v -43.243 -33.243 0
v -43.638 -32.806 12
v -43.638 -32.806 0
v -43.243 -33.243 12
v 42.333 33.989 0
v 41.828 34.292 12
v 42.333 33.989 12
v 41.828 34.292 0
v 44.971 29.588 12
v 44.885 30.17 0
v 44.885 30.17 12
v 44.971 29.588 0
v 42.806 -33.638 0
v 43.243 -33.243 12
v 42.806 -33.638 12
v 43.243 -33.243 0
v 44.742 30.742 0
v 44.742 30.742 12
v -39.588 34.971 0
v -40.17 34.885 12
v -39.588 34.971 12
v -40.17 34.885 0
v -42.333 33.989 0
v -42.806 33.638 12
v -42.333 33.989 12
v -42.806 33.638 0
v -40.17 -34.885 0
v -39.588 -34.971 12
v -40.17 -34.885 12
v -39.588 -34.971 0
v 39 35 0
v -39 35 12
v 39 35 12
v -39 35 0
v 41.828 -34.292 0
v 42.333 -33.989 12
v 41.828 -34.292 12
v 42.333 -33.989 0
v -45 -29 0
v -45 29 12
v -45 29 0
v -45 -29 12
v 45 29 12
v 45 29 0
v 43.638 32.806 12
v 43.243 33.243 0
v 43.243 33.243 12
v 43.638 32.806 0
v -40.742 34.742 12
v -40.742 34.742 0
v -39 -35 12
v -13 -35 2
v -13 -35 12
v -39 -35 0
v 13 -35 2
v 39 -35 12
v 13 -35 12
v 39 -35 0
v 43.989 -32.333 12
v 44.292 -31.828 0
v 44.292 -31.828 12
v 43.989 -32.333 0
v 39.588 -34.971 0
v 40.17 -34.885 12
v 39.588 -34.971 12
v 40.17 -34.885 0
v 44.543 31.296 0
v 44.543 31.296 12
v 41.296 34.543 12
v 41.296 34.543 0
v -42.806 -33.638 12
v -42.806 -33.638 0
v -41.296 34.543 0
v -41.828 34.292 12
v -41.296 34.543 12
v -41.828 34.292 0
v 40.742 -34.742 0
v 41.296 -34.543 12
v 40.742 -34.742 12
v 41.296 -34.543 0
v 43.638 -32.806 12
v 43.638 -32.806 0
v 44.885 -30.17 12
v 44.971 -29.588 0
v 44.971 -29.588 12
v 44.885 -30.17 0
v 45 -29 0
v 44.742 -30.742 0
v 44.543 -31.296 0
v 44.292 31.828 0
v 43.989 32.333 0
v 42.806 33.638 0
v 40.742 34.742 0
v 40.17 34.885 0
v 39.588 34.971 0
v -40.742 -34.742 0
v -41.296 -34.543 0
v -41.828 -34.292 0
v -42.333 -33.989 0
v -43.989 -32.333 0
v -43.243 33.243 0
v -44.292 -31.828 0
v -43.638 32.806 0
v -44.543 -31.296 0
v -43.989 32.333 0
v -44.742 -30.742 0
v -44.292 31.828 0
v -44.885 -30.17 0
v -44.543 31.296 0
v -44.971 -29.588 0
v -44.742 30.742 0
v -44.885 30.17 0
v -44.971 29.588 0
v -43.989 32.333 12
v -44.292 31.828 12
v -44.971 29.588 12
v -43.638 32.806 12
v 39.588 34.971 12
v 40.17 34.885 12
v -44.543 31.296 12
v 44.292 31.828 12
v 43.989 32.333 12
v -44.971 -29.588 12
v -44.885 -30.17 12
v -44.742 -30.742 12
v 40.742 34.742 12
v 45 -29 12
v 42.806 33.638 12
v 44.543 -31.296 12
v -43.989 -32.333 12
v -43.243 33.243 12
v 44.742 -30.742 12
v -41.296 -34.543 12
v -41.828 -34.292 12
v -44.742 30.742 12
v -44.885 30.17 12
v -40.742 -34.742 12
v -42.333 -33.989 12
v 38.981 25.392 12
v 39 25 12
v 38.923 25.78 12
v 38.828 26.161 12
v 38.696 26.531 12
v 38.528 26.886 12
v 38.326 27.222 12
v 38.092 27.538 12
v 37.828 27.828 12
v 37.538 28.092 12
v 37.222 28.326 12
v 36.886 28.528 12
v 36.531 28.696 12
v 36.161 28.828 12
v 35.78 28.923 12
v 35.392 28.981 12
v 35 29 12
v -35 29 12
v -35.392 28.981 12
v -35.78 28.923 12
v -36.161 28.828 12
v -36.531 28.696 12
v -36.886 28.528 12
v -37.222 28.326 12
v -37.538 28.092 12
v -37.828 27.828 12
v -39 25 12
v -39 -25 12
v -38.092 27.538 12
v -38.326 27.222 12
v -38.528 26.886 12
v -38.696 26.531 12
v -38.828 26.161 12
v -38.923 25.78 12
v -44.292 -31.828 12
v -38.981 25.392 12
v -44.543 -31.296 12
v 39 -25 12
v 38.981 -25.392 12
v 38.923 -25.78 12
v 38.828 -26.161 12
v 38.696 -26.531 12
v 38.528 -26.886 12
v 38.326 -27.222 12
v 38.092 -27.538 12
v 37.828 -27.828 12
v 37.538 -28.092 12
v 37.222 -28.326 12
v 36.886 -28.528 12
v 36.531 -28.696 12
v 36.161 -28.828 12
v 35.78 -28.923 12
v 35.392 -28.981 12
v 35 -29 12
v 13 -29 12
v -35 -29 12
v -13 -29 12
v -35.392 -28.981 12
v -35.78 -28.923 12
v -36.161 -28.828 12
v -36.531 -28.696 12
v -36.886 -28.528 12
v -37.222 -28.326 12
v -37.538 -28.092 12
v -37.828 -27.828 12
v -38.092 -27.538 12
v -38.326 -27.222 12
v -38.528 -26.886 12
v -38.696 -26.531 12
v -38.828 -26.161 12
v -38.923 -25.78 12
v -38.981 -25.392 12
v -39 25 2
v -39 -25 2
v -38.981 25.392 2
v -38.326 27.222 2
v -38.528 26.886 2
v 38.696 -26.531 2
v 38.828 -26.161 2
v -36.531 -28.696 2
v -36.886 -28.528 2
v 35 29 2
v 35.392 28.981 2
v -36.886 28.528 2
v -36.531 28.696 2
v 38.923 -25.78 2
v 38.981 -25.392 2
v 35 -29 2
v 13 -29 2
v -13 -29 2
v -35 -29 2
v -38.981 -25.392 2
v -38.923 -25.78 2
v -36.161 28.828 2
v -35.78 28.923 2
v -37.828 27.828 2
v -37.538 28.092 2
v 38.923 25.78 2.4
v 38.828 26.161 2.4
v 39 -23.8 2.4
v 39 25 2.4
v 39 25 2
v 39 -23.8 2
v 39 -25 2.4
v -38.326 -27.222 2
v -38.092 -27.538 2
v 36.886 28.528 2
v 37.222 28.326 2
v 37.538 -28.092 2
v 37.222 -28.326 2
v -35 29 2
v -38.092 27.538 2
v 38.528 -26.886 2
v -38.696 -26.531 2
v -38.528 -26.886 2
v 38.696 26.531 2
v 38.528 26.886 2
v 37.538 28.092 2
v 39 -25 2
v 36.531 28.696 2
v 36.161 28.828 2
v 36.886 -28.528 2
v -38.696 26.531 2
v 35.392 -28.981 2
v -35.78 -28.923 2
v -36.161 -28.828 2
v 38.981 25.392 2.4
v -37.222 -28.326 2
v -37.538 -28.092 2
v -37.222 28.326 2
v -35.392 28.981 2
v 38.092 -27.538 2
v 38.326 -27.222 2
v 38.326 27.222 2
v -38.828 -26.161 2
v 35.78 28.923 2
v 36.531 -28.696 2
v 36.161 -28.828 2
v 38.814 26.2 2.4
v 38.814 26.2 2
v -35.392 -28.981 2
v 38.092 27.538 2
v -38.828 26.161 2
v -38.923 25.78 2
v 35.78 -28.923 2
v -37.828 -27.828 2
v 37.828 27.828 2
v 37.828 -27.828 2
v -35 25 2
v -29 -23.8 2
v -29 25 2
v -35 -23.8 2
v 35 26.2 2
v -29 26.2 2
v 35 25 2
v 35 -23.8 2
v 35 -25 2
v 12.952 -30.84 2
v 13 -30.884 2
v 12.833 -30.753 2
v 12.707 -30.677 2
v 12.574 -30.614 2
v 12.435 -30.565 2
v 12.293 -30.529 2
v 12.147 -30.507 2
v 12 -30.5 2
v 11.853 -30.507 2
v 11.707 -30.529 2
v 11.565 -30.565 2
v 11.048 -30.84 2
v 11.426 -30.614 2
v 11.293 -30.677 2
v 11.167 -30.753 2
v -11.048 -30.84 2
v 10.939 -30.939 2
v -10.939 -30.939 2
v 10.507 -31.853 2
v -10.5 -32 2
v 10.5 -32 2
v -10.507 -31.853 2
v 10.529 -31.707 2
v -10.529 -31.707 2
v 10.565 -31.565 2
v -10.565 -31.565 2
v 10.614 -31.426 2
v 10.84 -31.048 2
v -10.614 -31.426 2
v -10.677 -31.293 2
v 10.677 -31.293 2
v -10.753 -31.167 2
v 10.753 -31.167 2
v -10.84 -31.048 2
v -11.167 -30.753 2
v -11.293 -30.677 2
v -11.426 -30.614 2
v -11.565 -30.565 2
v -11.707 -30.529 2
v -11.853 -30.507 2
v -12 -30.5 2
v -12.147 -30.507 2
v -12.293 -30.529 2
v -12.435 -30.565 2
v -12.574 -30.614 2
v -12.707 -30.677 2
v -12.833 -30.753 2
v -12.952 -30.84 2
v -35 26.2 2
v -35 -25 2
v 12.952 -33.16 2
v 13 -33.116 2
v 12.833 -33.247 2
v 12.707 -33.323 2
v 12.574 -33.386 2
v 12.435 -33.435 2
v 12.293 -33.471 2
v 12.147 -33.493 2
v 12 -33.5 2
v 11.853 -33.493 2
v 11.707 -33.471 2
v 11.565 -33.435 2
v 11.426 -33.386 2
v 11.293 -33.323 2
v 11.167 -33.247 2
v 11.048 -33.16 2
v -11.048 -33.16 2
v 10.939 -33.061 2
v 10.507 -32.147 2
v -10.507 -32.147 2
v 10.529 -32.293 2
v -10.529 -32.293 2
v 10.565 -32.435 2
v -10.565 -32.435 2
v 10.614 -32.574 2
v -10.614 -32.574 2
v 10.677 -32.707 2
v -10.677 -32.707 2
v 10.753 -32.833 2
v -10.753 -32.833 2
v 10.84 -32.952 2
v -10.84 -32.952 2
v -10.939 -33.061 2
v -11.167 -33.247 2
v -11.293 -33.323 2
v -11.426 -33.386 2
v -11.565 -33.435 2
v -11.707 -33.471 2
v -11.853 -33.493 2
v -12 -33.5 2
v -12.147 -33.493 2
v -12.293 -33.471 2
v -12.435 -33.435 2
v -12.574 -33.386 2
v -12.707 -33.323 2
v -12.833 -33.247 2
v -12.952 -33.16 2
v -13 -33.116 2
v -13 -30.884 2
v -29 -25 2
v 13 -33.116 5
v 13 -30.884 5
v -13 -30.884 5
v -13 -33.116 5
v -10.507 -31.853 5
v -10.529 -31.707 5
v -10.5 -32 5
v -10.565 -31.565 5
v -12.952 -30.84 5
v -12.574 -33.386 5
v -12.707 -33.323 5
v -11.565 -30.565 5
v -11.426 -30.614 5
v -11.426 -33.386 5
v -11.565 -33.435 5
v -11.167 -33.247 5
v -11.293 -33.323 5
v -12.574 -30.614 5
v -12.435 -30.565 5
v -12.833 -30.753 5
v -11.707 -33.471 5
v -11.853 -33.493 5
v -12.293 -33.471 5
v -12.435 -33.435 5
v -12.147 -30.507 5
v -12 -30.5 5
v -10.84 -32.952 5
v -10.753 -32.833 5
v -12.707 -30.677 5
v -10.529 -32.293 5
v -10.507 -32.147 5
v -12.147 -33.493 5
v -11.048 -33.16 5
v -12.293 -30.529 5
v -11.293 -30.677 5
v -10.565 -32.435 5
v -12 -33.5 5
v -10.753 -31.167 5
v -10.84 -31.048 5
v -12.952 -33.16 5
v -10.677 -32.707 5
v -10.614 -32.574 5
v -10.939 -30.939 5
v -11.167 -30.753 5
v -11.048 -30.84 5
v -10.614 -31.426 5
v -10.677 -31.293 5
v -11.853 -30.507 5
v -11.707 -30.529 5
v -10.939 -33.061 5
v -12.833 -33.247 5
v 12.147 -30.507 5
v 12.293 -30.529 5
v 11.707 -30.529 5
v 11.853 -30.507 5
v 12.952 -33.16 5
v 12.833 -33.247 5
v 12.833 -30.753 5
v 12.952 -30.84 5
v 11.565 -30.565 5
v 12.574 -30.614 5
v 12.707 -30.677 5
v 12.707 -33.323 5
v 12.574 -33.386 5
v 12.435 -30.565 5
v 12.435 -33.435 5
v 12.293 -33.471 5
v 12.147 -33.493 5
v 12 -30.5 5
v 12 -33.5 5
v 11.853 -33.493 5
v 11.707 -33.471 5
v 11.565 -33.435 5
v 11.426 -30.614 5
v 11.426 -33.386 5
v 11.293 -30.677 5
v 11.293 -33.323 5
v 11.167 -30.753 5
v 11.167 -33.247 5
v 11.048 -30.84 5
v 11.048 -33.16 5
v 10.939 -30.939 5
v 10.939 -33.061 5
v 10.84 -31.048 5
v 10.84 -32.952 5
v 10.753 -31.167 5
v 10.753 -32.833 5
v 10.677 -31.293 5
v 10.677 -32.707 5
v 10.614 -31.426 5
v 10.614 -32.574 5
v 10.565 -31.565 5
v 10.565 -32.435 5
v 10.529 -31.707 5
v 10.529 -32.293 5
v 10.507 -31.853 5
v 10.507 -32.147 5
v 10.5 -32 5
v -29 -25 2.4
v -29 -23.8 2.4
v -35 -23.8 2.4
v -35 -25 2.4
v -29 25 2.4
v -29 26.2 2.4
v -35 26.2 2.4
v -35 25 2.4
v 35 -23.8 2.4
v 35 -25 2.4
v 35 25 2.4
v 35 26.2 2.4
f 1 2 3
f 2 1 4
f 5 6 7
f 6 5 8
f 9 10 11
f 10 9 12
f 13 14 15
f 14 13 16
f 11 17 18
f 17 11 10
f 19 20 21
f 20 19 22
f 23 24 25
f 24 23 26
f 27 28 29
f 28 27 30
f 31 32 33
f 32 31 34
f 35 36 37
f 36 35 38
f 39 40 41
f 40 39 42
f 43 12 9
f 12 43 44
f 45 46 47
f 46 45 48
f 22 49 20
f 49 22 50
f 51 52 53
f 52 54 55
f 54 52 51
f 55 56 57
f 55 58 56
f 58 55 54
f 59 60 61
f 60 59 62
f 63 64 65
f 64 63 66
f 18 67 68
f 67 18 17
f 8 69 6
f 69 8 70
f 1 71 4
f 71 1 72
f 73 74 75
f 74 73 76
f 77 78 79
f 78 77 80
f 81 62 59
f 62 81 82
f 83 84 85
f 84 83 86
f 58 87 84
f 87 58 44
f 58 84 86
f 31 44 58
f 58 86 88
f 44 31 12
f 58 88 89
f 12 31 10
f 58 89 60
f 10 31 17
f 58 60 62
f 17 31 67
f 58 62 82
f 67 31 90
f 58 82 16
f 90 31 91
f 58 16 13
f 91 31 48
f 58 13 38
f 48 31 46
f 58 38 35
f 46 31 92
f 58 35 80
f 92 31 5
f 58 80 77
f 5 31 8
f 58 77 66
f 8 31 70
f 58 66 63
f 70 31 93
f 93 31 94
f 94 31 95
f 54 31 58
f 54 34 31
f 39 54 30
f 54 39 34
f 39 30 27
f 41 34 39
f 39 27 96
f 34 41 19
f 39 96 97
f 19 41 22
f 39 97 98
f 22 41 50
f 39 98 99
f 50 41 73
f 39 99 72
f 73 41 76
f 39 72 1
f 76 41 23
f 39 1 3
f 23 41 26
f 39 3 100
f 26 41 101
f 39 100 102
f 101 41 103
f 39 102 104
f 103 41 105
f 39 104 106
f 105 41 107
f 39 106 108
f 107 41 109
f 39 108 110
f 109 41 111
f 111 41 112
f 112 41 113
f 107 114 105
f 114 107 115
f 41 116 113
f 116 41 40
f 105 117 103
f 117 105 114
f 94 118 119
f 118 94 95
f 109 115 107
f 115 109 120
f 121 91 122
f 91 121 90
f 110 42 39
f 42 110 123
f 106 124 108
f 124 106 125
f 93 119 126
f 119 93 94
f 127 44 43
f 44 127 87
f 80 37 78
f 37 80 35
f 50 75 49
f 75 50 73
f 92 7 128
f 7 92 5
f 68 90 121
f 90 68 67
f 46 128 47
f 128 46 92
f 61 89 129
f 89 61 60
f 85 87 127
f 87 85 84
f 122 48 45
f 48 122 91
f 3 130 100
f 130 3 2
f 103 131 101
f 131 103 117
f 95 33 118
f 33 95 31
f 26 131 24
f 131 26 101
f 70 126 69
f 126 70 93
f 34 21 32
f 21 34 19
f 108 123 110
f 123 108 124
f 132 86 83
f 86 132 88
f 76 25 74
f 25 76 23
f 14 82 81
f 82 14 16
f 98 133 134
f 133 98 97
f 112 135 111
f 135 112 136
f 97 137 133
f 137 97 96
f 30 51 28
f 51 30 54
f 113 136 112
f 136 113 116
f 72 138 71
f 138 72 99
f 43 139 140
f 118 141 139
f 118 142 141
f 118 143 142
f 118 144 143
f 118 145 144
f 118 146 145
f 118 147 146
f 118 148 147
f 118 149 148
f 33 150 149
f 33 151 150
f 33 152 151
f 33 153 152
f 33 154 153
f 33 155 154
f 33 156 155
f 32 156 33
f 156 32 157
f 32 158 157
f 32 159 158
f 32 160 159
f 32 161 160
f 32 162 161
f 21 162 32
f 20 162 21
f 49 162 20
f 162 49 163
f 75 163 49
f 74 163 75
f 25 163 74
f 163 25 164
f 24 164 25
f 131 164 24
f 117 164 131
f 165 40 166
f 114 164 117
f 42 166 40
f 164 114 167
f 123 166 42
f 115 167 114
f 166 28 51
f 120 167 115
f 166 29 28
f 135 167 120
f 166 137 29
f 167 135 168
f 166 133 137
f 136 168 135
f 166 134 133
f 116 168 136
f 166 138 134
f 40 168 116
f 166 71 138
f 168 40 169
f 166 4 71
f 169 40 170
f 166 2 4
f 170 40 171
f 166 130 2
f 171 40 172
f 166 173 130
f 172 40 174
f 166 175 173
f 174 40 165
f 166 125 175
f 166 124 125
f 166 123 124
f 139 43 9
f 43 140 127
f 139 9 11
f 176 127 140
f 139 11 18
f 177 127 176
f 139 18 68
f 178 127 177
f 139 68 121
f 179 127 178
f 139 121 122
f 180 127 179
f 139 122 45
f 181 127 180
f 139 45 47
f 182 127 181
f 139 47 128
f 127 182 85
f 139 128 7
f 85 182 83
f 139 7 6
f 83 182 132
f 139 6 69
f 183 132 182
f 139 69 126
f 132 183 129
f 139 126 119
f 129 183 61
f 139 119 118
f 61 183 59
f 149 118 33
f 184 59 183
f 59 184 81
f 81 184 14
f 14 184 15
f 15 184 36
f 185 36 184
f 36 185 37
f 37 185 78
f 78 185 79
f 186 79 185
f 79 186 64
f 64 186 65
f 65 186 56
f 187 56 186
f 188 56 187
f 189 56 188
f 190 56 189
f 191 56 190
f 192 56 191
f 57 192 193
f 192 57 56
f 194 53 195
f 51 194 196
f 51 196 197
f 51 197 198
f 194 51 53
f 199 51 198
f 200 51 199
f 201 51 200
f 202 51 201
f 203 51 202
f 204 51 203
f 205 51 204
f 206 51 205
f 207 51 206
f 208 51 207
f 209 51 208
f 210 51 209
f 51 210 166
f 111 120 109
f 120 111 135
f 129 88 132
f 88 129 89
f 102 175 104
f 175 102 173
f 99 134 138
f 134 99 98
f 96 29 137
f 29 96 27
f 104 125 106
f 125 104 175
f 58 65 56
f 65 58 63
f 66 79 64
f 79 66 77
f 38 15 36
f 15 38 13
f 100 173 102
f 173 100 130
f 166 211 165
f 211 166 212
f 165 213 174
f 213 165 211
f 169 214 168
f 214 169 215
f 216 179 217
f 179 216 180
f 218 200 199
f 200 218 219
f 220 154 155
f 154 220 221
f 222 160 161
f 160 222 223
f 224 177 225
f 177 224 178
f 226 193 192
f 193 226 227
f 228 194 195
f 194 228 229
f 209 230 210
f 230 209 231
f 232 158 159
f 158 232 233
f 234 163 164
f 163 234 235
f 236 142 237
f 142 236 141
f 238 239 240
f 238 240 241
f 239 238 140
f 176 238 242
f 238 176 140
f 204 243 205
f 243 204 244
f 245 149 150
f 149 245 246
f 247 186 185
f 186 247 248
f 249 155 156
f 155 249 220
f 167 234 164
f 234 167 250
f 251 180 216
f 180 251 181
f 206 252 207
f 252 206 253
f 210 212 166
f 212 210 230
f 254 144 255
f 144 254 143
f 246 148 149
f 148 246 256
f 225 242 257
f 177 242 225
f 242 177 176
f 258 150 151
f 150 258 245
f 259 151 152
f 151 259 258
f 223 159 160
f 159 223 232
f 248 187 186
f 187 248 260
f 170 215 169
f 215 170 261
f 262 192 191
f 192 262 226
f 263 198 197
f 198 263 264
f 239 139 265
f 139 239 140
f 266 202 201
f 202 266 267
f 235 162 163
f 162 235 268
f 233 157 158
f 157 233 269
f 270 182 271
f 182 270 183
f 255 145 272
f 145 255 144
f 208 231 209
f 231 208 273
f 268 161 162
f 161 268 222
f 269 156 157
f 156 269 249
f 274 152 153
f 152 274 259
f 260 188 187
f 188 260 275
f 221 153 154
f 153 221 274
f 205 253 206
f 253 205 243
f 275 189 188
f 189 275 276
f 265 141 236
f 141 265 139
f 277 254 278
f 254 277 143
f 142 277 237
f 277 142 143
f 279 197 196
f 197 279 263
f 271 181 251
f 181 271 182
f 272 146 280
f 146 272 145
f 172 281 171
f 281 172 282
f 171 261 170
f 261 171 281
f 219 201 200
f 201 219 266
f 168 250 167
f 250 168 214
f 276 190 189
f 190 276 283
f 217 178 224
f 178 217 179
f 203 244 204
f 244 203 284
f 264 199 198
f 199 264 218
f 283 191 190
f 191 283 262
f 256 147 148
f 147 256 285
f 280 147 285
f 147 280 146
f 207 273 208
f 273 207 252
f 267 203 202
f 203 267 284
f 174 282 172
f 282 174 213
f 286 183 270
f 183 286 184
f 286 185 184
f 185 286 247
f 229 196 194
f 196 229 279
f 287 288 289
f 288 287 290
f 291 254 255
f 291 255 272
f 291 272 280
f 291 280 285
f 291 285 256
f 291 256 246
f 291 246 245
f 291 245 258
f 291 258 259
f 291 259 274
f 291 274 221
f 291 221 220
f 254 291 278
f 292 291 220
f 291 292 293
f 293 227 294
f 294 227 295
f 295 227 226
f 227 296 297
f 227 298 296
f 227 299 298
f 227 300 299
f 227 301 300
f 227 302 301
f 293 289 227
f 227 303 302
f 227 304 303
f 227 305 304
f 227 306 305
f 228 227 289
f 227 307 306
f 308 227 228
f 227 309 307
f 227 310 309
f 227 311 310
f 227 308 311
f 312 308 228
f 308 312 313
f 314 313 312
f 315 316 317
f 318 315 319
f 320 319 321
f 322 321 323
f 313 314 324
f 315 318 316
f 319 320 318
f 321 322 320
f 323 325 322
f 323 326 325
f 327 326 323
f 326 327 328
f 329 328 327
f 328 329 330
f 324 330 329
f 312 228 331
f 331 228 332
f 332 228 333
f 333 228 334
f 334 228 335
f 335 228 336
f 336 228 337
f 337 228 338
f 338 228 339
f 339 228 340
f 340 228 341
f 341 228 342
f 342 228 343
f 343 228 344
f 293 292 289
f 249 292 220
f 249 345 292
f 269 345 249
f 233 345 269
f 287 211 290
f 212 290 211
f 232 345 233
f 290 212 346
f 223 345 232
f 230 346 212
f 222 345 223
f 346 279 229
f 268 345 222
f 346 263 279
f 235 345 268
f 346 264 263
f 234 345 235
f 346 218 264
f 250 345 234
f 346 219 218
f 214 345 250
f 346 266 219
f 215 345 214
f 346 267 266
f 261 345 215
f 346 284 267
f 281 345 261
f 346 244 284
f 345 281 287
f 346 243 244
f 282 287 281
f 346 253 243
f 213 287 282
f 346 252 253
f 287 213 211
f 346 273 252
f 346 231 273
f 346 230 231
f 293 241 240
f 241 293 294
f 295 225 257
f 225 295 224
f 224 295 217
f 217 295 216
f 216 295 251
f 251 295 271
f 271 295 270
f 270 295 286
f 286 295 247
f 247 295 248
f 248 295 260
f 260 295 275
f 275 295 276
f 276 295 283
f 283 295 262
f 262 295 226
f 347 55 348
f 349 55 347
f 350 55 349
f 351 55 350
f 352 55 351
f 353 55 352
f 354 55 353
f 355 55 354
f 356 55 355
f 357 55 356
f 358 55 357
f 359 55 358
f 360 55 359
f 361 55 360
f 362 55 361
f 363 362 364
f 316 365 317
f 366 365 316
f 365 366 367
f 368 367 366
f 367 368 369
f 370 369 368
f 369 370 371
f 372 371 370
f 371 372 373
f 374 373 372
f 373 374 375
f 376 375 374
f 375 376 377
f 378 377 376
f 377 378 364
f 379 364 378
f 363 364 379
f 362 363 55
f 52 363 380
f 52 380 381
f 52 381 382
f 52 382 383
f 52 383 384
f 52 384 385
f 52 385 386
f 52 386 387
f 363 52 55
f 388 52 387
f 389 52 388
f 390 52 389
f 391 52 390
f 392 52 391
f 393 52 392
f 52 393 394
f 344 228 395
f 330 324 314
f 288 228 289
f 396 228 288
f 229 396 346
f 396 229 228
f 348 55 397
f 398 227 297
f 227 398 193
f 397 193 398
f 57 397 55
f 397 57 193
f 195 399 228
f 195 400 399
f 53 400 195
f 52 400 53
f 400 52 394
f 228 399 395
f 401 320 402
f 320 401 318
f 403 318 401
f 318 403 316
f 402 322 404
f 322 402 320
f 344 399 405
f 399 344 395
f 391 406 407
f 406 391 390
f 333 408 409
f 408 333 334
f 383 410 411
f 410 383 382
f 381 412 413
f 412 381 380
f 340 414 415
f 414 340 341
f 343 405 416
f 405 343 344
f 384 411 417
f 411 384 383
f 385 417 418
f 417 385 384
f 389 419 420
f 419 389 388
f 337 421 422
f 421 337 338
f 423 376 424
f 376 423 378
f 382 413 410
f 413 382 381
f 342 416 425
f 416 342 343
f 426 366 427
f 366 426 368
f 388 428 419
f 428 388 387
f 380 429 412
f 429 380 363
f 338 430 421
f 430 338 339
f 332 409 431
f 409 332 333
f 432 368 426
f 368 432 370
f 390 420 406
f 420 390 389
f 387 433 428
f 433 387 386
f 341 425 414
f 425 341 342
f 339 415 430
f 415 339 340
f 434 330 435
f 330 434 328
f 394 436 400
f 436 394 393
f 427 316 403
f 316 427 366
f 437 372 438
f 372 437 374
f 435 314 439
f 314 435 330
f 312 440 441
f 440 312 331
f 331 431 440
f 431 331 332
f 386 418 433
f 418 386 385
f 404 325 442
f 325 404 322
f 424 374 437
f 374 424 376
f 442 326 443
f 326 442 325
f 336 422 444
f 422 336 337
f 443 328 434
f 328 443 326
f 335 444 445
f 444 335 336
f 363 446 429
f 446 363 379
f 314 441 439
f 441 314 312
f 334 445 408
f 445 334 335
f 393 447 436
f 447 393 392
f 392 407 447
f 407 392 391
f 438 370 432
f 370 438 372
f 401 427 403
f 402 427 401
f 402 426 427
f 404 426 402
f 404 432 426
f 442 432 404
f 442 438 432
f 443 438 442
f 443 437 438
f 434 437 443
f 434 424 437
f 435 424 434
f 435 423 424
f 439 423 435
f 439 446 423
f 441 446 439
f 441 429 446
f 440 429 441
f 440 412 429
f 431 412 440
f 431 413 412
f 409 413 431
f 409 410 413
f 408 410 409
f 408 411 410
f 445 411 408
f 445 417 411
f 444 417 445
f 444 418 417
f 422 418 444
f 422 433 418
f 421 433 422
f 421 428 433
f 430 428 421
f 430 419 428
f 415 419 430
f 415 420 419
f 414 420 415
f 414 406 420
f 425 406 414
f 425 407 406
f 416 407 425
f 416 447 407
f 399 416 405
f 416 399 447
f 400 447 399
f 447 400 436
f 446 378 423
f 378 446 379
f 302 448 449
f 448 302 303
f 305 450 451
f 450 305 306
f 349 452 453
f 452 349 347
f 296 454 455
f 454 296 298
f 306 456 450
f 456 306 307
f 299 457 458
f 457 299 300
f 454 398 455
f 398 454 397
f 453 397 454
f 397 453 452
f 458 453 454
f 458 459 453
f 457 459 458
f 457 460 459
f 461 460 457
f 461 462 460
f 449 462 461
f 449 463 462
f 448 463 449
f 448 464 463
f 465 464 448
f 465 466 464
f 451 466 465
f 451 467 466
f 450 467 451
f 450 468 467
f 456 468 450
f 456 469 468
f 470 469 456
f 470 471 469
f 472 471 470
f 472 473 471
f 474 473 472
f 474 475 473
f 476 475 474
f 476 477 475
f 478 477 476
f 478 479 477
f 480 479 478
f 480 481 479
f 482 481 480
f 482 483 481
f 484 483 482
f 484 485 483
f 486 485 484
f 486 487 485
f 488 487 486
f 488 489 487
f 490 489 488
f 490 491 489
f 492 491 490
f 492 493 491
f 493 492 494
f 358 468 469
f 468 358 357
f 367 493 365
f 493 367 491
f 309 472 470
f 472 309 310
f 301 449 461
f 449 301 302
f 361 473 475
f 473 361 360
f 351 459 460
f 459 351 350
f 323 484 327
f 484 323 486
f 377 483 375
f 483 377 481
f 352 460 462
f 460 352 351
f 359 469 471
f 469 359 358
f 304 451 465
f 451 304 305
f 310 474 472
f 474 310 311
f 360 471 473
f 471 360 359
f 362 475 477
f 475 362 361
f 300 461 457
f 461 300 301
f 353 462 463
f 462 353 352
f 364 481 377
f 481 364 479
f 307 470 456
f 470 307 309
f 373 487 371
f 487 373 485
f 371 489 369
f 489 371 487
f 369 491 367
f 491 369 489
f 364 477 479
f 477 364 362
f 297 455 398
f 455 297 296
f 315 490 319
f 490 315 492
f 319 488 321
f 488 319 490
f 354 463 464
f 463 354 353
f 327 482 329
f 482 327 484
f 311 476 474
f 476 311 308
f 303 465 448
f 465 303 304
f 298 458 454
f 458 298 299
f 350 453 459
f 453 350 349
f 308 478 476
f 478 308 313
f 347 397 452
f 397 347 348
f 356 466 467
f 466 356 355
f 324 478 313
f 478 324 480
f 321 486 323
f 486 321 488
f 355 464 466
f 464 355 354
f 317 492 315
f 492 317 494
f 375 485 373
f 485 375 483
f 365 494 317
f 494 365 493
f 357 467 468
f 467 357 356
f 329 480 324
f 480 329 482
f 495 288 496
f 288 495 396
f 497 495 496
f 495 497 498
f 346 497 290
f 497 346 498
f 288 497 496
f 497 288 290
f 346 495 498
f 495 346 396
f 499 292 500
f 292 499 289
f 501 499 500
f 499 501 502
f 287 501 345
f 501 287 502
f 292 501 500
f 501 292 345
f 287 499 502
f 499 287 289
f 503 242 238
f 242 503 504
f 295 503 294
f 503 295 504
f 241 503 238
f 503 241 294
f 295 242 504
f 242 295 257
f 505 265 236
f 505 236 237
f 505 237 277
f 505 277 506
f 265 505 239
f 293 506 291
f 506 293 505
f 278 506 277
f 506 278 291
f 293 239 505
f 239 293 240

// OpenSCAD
// file: parameters.scad
// Shared parametric dimensions — Automated Pill Dispenser (full prototype print set)
// include <parameters.scad>;

// ----- Global print / fit -----
layer_h         = 0.2;
nozzle_d        = 0.4;
wall            = 2.4;
clearance_slip  = 0.30;
clearance_press = 0.08;

// ----- Arduino Nano 33 BLE -----
nano_l = 45.0;
nano_w = 18.0;
nano_h = 7.0;
nano_usb_w = 9.0;
nano_usb_h = 4.0;

// ----- MG90S servo -----
servo_l = 22.8;
servo_w = 12.2;
servo_h = 28.5;
servo_tab_l = 32.2;
servo_horn_od = 7.0;
servo_shaft_clear_d = 9.0;

// ----- LiPo + TP4056 -----
lipo_l = 30.0;
lipo_w = 20.0;
lipo_h = 6.0;
tp4056_l = 26.0;
tp4056_w = 17.0;
tp4056_h = 5.0;
tp4056_usbc_w = 9.5;
tp4056_usbc_h = 4.0;

// ----- Part A enclosure -----
base_outer_xy = 120.0;
base_outer_h  = 42.0;
chute_angle   = 45.0;
chute_w       = 22.0;

// ----- Part B plate -----
base_plate_dia = 100.0;
base_plate_h   = 5.0;
drop_w         = 20.0;
drop_d         = 15.0;
drop_r_offset  = 32.0;

// ----- Part C carousel -----
car_dia     = 98.0;
car_h       = 25.0;
car_pockets = 8;
car_wall    = 2.0;
car_hub_od  = 18.0;
car_hub_id  = servo_horn_od - clearance_press;

// ----- Part D latch gate -----
gate_travel    = 22.0;
gate_thickness = 2.4;
gate_w         = drop_w + 6.0;
gate_l         = drop_d + gate_travel + 8.0;

// ----- Part E carousel lid -----
lid_dia        = car_dia + 4.0;
lid_h          = 3.0;
lid_lip_h      = 6.0;
lid_clearance  = 0.5;

// ----- Part F catch tray (vision landing zone) -----
tray_l = 90.0;
tray_w = 70.0;
tray_h = 12.0;
tray_floor = 2.0;
tray_well_margin = 6.0;

// ----- Part G chute spout -----
spout_len = 35.0;
spout_flare = 28.0;

// ----- Part H latch servo bracket -----
bracket_wall = 2.4;

// ----- Part I cable clips -----
clip_w = 10.0;
clip_span = 6.0;

// ----- Part J feet -----
foot_od = 14.0;
foot_h  = 4.0;

// ----- Part K pill pocket insert (optional reducer) -----
insert_h = car_h - 2.0;
insert_outer_clear = 0.35;
// main file
// Part F — Catch tray / vision landing dish
// High-contrast well for OpenCV pill verify (place in front of housing chute).
// Export → stl/part_f_catch_tray.stl
// Print flat. No supports. Suggested: dark filament or paint well floor.

include <parameters.scad>;

$fn = 64;

module part_f_catch_tray() {
    difference() {
        // Outer tray
        translate([0, 0, tray_h / 2])
            rounded_rect(tray_l, tray_w, tray_h, 6);
        // Inner well
        translate([0, 0, tray_h / 2 + tray_floor])
            rounded_rect(
                tray_l - 2 * tray_well_margin,
                tray_w - 2 * tray_well_margin,
                tray_h,
                4
            );
        // Spout inlet notch on -Y edge (faces housing chute)
        translate([0, -tray_w / 2, tray_h / 2 + 2])
            cube([chute_w + 4, 12, tray_h], center = true);
    }
    // Registration pegs to mate with spout (optional glue)
    for (x = [-12, 12])
        translate([x, -tray_w / 2 + 3, tray_floor])
            cylinder(h = 3, d = 3.0, center = false);

    // Corner camera-calibration L-marks (raised 0.4 mm)
    for (ix = [-1, 1], iy = [-1, 1])
        translate([ix * (tray_l / 2 - 10), iy * (tray_w / 2 - 10), tray_floor])
            cube([6, 1.2, 0.4], center = false);
}

module rounded_rect(x, y, z, r) {
    hull() for (ix = [-1, 1], iy = [-1, 1])
        translate([ix * (x / 2 - r), iy * (y / 2 - r), 0])
            cylinder(h = z, r = r, center = true);
}

part_f_catch_tray();
